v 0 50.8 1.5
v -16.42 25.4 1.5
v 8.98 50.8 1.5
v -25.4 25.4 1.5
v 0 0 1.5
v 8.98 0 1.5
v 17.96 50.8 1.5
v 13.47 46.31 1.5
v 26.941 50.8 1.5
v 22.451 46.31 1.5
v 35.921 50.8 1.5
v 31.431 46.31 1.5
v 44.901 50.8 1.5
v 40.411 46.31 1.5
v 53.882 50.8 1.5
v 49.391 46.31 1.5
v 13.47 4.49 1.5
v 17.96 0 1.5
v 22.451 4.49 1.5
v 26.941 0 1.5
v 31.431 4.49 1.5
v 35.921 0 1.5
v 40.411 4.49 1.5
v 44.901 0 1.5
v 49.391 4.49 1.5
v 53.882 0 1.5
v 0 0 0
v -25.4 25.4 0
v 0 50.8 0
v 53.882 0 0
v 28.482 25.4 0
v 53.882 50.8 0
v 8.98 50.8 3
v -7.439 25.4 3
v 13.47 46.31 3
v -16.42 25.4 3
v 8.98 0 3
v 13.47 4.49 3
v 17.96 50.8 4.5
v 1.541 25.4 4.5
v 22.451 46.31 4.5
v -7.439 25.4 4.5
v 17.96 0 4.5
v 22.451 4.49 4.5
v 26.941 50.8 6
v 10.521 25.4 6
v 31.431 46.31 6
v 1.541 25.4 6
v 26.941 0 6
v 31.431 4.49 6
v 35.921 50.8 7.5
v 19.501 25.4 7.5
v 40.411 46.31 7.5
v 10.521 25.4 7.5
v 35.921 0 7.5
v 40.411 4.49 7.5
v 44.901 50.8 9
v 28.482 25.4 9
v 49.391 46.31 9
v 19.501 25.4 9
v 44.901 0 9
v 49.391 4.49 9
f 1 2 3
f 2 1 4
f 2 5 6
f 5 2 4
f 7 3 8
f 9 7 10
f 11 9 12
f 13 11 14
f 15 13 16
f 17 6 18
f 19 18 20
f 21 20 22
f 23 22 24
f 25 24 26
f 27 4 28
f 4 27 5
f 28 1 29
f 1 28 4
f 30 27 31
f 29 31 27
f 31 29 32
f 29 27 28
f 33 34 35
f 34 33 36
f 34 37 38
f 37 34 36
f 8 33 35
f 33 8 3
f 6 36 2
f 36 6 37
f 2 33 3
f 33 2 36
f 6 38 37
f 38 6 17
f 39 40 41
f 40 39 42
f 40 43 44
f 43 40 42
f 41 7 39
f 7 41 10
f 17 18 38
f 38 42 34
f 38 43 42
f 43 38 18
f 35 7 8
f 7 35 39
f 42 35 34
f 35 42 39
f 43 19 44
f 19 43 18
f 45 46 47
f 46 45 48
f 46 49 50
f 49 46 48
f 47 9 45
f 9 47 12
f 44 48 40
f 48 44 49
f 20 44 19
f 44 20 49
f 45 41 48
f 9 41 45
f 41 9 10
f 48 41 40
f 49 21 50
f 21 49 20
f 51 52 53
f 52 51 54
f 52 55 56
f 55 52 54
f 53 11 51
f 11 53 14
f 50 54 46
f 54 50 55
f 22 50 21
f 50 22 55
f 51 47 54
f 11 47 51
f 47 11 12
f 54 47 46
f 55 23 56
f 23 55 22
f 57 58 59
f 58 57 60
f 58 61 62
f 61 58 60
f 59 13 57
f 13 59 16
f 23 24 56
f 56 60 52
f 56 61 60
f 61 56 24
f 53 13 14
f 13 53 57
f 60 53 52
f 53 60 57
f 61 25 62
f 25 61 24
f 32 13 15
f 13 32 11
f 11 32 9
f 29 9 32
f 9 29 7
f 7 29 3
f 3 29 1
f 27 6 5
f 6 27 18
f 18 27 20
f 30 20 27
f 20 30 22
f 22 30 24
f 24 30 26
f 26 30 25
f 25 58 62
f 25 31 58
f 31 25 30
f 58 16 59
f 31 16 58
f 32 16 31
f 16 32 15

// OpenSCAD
$tileH = 50.8;
$m = $tileH / 10;
$c = sqrt(pow($tileH, 2)/2);
$d = 1.5;
$fn = 3;
$links = 5;

difference() {
union() {
translate([0, 0, 0]) {
    cube([$tileH*$links/4, $tileH, $d]);
}
for (i = [0:$links]) {
     translate([i * $c/4, 0, 0]) {
        rotate([0, 0, 45]) {
            if (i==0) {
                cube([$c, $c, 1.5]);
            } else {
               cube([$c, $c, $d*(i+1)]);
            }
        }
        if (i < $links-1) {
            translate([-$tileH/4, $tileH/2-$m/2, $d*i]) {
       //  rotate([0, 50, 0]) {
        //    cube([$m, $m, $m *2]);
        //}
      }
  }
     }
}

}

translate([($links+1) * $c/4, 0, -2]) {
        rotate([0, 0, 45]) {
            cube([$c, $c, $d * ($links+1)*2]);
        }
     }
translate([($links+1) * $c/4, -$c, -2]) {
            cube([$c*3, $c*3, $d * 25]);
     }
translate([-$tileH, 0, -$d*3]) {
    cube([$tileH*$links/2, $tileH, $d*3]);
}
}

 
